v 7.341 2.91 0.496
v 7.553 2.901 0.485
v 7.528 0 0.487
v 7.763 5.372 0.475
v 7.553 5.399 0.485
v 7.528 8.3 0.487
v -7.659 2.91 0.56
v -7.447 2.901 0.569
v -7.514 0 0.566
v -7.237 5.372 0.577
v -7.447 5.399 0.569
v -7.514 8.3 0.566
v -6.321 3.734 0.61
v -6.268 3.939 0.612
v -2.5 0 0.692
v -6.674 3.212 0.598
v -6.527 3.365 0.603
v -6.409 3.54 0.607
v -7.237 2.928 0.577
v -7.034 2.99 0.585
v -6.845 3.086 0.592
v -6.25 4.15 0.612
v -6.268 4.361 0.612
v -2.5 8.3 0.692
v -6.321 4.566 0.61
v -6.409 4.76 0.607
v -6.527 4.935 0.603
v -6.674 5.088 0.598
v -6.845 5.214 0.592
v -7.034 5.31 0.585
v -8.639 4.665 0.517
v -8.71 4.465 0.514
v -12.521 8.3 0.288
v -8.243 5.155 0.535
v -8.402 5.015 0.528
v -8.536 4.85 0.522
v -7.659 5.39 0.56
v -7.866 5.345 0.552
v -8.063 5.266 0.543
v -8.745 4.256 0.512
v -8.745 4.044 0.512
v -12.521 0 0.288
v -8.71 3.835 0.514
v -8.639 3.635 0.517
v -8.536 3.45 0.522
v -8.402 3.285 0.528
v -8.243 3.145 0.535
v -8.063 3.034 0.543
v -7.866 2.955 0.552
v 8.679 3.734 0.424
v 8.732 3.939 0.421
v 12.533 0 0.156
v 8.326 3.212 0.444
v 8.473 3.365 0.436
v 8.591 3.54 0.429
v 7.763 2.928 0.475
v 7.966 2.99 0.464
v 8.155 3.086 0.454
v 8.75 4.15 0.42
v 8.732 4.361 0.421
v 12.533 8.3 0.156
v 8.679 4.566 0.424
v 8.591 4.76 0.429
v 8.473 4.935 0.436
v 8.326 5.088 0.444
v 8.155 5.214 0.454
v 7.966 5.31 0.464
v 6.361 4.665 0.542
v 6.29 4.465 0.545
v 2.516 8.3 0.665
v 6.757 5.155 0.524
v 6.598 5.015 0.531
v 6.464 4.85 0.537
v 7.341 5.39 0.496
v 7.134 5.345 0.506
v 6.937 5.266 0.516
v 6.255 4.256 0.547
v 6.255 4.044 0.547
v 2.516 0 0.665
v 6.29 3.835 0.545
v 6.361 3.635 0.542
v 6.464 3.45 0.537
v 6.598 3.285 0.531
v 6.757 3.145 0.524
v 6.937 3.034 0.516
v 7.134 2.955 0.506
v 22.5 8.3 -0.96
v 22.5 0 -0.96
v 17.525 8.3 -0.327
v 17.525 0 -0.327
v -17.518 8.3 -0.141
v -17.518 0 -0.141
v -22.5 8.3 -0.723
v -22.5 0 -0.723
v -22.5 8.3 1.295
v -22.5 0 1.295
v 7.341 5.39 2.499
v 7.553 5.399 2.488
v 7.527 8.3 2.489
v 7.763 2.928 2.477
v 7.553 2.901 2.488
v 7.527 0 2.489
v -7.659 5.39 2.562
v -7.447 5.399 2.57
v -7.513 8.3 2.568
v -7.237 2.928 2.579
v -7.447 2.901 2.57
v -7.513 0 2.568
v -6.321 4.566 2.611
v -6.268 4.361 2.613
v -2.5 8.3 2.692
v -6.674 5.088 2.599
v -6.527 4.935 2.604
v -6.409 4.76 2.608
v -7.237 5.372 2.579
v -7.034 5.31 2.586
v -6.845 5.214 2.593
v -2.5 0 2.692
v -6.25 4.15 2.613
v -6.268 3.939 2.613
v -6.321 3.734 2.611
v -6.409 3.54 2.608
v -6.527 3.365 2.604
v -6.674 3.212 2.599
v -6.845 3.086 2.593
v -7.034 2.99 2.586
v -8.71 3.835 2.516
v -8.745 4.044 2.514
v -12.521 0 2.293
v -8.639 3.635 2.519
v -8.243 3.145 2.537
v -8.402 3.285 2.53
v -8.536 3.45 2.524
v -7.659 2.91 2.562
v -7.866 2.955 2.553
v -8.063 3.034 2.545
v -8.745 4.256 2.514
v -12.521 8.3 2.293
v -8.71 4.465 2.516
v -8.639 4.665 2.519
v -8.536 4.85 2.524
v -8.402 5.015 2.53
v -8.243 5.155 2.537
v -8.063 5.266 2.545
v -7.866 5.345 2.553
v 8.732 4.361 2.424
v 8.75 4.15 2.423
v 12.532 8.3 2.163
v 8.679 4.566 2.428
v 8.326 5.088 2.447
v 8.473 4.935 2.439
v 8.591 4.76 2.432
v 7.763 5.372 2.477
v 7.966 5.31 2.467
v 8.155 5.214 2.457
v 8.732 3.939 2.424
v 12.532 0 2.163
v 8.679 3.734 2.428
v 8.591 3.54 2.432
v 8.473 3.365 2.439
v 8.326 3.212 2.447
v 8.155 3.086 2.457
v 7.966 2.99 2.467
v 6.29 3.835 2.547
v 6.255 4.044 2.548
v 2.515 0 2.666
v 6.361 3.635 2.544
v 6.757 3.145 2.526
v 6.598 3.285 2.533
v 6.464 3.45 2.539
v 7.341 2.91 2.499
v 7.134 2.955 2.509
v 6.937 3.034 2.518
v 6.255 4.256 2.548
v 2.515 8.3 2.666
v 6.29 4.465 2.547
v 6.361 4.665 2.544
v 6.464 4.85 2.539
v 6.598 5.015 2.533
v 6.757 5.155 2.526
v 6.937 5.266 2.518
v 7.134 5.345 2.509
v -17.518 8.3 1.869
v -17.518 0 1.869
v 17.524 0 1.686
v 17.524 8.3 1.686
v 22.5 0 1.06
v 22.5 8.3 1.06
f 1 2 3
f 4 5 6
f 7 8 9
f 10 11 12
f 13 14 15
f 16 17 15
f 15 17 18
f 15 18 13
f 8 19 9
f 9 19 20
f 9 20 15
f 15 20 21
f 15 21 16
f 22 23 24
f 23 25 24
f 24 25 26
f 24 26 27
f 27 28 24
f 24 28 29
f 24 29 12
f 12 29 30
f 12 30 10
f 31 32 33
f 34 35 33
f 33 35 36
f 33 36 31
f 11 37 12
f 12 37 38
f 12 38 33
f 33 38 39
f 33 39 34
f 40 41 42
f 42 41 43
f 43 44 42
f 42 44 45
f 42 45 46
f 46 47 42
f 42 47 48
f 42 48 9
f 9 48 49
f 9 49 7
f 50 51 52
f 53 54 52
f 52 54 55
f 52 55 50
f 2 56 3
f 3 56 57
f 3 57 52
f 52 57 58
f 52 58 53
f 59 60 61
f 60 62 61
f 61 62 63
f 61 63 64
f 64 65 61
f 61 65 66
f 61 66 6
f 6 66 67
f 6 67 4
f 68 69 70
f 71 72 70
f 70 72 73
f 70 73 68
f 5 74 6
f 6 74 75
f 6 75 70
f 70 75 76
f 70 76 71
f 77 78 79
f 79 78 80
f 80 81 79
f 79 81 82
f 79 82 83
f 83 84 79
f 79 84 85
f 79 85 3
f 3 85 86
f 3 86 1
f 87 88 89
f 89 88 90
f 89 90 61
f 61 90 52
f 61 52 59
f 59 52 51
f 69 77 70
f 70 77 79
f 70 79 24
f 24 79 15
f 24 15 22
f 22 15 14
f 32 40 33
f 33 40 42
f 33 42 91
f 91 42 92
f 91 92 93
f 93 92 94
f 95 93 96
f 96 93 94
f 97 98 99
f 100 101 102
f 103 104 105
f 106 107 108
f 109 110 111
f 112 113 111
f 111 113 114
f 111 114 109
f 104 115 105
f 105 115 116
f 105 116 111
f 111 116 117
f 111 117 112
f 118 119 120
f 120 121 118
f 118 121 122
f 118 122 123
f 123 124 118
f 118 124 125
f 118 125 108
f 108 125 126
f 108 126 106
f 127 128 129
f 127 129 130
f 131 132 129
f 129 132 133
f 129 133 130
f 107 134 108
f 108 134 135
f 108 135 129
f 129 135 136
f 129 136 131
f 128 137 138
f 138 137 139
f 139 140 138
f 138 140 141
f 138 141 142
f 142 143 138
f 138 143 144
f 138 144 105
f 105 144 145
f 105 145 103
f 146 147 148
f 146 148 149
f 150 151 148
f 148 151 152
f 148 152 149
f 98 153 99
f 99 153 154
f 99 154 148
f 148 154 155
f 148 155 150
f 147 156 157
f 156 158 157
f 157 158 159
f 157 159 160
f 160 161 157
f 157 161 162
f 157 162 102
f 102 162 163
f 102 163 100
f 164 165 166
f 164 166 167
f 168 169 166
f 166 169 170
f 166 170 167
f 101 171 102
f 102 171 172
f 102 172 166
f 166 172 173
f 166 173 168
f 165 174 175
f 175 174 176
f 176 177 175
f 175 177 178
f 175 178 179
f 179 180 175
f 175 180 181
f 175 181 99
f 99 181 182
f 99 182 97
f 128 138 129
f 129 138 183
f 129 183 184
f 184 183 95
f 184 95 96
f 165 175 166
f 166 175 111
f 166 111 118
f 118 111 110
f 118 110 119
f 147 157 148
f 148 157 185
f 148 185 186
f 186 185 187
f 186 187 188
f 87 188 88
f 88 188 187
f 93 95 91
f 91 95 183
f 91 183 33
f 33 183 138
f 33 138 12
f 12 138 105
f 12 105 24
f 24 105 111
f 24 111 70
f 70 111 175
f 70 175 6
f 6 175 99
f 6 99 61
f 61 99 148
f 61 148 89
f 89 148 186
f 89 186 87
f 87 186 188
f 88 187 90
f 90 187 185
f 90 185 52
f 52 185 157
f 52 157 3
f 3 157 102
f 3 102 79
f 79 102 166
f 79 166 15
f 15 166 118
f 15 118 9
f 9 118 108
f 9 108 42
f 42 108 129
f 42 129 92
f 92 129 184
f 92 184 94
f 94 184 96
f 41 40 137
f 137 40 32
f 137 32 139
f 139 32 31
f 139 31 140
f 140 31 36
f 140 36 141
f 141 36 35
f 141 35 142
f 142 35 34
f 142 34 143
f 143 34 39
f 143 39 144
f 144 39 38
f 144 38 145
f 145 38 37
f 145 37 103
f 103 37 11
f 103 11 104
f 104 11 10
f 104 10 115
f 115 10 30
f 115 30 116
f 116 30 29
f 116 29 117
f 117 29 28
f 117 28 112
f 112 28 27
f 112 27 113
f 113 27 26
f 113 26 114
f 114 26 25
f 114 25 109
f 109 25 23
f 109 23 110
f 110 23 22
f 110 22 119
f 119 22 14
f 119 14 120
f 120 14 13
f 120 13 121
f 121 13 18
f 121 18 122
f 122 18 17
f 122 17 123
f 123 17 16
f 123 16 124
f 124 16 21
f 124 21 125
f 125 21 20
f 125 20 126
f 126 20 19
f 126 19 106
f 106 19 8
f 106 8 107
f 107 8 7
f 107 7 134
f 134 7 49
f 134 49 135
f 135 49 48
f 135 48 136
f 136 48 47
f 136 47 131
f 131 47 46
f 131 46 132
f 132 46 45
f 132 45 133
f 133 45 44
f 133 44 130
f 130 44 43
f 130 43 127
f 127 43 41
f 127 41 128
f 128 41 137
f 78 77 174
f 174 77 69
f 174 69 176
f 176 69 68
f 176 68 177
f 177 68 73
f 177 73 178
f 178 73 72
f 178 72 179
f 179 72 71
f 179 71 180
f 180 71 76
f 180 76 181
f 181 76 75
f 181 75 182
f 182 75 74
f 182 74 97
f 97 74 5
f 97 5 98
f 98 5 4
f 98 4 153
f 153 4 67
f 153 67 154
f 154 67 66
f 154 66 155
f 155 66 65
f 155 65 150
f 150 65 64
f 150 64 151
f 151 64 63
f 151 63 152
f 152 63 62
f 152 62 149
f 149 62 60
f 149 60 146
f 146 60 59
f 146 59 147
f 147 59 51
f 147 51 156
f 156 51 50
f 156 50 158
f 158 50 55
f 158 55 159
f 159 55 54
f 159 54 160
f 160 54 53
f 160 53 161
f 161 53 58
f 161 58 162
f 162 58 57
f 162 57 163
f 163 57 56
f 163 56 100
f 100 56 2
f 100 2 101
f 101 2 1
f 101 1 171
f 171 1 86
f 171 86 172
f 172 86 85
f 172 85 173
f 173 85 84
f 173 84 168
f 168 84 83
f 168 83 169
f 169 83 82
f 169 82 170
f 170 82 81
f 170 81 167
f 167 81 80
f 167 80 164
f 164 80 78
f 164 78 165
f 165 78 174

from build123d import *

# Parameters (mm, degrees)
BOSS_EXTRUDE1_DEPTH     = 8.3
SKETCH2_R               = 1.25
CUT_EXTRUDE1_DEPTH      = 3.700074126
CUT_EXTRUDE1_DEPTH_BACK = 1.960467608


with BuildPart() as part:
    # Sketch1 → Boss-Extrude1 (new body)
    with BuildSketch(Plane(origin=(0, 0, 0), x_dir=(1, 0, 0), z_dir=(0, 1, 0))):
        with BuildLine():
            Line((22.5, 0.960467608), (22.5, -1.059592066))
            ThreePointArc((22.5, -1.059592066), (0.00793889, -2.697795715), (-22.5, -1.2945099))
            Line((-22.5, -1.2945099), (-22.5, 0.722652417))
            ThreePointArc((-22.5, 0.722652417), (0.008135008, -0.697767096), (22.5, 0.960467608))
        make_face()
    extrude(amount=BOSS_EXTRUDE1_DEPTH)

    # Sketch2 → Cut-Extrude1 (cut, two sides)
    with BuildSketch(Plane.XY) as cut_extrude1_sk:
        with Locations((7.5, 4.15)):
            Circle(SKETCH2_R)
        with Locations((-7.5, 4.15)):
            Circle(SKETCH2_R)
    extrude(amount=CUT_EXTRUDE1_DEPTH, mode=Mode.SUBTRACT)
    extrude(cut_extrude1_sk.sketch, amount=-CUT_EXTRUDE1_DEPTH_BACK, mode=Mode.SUBTRACT)


solid = part.part
